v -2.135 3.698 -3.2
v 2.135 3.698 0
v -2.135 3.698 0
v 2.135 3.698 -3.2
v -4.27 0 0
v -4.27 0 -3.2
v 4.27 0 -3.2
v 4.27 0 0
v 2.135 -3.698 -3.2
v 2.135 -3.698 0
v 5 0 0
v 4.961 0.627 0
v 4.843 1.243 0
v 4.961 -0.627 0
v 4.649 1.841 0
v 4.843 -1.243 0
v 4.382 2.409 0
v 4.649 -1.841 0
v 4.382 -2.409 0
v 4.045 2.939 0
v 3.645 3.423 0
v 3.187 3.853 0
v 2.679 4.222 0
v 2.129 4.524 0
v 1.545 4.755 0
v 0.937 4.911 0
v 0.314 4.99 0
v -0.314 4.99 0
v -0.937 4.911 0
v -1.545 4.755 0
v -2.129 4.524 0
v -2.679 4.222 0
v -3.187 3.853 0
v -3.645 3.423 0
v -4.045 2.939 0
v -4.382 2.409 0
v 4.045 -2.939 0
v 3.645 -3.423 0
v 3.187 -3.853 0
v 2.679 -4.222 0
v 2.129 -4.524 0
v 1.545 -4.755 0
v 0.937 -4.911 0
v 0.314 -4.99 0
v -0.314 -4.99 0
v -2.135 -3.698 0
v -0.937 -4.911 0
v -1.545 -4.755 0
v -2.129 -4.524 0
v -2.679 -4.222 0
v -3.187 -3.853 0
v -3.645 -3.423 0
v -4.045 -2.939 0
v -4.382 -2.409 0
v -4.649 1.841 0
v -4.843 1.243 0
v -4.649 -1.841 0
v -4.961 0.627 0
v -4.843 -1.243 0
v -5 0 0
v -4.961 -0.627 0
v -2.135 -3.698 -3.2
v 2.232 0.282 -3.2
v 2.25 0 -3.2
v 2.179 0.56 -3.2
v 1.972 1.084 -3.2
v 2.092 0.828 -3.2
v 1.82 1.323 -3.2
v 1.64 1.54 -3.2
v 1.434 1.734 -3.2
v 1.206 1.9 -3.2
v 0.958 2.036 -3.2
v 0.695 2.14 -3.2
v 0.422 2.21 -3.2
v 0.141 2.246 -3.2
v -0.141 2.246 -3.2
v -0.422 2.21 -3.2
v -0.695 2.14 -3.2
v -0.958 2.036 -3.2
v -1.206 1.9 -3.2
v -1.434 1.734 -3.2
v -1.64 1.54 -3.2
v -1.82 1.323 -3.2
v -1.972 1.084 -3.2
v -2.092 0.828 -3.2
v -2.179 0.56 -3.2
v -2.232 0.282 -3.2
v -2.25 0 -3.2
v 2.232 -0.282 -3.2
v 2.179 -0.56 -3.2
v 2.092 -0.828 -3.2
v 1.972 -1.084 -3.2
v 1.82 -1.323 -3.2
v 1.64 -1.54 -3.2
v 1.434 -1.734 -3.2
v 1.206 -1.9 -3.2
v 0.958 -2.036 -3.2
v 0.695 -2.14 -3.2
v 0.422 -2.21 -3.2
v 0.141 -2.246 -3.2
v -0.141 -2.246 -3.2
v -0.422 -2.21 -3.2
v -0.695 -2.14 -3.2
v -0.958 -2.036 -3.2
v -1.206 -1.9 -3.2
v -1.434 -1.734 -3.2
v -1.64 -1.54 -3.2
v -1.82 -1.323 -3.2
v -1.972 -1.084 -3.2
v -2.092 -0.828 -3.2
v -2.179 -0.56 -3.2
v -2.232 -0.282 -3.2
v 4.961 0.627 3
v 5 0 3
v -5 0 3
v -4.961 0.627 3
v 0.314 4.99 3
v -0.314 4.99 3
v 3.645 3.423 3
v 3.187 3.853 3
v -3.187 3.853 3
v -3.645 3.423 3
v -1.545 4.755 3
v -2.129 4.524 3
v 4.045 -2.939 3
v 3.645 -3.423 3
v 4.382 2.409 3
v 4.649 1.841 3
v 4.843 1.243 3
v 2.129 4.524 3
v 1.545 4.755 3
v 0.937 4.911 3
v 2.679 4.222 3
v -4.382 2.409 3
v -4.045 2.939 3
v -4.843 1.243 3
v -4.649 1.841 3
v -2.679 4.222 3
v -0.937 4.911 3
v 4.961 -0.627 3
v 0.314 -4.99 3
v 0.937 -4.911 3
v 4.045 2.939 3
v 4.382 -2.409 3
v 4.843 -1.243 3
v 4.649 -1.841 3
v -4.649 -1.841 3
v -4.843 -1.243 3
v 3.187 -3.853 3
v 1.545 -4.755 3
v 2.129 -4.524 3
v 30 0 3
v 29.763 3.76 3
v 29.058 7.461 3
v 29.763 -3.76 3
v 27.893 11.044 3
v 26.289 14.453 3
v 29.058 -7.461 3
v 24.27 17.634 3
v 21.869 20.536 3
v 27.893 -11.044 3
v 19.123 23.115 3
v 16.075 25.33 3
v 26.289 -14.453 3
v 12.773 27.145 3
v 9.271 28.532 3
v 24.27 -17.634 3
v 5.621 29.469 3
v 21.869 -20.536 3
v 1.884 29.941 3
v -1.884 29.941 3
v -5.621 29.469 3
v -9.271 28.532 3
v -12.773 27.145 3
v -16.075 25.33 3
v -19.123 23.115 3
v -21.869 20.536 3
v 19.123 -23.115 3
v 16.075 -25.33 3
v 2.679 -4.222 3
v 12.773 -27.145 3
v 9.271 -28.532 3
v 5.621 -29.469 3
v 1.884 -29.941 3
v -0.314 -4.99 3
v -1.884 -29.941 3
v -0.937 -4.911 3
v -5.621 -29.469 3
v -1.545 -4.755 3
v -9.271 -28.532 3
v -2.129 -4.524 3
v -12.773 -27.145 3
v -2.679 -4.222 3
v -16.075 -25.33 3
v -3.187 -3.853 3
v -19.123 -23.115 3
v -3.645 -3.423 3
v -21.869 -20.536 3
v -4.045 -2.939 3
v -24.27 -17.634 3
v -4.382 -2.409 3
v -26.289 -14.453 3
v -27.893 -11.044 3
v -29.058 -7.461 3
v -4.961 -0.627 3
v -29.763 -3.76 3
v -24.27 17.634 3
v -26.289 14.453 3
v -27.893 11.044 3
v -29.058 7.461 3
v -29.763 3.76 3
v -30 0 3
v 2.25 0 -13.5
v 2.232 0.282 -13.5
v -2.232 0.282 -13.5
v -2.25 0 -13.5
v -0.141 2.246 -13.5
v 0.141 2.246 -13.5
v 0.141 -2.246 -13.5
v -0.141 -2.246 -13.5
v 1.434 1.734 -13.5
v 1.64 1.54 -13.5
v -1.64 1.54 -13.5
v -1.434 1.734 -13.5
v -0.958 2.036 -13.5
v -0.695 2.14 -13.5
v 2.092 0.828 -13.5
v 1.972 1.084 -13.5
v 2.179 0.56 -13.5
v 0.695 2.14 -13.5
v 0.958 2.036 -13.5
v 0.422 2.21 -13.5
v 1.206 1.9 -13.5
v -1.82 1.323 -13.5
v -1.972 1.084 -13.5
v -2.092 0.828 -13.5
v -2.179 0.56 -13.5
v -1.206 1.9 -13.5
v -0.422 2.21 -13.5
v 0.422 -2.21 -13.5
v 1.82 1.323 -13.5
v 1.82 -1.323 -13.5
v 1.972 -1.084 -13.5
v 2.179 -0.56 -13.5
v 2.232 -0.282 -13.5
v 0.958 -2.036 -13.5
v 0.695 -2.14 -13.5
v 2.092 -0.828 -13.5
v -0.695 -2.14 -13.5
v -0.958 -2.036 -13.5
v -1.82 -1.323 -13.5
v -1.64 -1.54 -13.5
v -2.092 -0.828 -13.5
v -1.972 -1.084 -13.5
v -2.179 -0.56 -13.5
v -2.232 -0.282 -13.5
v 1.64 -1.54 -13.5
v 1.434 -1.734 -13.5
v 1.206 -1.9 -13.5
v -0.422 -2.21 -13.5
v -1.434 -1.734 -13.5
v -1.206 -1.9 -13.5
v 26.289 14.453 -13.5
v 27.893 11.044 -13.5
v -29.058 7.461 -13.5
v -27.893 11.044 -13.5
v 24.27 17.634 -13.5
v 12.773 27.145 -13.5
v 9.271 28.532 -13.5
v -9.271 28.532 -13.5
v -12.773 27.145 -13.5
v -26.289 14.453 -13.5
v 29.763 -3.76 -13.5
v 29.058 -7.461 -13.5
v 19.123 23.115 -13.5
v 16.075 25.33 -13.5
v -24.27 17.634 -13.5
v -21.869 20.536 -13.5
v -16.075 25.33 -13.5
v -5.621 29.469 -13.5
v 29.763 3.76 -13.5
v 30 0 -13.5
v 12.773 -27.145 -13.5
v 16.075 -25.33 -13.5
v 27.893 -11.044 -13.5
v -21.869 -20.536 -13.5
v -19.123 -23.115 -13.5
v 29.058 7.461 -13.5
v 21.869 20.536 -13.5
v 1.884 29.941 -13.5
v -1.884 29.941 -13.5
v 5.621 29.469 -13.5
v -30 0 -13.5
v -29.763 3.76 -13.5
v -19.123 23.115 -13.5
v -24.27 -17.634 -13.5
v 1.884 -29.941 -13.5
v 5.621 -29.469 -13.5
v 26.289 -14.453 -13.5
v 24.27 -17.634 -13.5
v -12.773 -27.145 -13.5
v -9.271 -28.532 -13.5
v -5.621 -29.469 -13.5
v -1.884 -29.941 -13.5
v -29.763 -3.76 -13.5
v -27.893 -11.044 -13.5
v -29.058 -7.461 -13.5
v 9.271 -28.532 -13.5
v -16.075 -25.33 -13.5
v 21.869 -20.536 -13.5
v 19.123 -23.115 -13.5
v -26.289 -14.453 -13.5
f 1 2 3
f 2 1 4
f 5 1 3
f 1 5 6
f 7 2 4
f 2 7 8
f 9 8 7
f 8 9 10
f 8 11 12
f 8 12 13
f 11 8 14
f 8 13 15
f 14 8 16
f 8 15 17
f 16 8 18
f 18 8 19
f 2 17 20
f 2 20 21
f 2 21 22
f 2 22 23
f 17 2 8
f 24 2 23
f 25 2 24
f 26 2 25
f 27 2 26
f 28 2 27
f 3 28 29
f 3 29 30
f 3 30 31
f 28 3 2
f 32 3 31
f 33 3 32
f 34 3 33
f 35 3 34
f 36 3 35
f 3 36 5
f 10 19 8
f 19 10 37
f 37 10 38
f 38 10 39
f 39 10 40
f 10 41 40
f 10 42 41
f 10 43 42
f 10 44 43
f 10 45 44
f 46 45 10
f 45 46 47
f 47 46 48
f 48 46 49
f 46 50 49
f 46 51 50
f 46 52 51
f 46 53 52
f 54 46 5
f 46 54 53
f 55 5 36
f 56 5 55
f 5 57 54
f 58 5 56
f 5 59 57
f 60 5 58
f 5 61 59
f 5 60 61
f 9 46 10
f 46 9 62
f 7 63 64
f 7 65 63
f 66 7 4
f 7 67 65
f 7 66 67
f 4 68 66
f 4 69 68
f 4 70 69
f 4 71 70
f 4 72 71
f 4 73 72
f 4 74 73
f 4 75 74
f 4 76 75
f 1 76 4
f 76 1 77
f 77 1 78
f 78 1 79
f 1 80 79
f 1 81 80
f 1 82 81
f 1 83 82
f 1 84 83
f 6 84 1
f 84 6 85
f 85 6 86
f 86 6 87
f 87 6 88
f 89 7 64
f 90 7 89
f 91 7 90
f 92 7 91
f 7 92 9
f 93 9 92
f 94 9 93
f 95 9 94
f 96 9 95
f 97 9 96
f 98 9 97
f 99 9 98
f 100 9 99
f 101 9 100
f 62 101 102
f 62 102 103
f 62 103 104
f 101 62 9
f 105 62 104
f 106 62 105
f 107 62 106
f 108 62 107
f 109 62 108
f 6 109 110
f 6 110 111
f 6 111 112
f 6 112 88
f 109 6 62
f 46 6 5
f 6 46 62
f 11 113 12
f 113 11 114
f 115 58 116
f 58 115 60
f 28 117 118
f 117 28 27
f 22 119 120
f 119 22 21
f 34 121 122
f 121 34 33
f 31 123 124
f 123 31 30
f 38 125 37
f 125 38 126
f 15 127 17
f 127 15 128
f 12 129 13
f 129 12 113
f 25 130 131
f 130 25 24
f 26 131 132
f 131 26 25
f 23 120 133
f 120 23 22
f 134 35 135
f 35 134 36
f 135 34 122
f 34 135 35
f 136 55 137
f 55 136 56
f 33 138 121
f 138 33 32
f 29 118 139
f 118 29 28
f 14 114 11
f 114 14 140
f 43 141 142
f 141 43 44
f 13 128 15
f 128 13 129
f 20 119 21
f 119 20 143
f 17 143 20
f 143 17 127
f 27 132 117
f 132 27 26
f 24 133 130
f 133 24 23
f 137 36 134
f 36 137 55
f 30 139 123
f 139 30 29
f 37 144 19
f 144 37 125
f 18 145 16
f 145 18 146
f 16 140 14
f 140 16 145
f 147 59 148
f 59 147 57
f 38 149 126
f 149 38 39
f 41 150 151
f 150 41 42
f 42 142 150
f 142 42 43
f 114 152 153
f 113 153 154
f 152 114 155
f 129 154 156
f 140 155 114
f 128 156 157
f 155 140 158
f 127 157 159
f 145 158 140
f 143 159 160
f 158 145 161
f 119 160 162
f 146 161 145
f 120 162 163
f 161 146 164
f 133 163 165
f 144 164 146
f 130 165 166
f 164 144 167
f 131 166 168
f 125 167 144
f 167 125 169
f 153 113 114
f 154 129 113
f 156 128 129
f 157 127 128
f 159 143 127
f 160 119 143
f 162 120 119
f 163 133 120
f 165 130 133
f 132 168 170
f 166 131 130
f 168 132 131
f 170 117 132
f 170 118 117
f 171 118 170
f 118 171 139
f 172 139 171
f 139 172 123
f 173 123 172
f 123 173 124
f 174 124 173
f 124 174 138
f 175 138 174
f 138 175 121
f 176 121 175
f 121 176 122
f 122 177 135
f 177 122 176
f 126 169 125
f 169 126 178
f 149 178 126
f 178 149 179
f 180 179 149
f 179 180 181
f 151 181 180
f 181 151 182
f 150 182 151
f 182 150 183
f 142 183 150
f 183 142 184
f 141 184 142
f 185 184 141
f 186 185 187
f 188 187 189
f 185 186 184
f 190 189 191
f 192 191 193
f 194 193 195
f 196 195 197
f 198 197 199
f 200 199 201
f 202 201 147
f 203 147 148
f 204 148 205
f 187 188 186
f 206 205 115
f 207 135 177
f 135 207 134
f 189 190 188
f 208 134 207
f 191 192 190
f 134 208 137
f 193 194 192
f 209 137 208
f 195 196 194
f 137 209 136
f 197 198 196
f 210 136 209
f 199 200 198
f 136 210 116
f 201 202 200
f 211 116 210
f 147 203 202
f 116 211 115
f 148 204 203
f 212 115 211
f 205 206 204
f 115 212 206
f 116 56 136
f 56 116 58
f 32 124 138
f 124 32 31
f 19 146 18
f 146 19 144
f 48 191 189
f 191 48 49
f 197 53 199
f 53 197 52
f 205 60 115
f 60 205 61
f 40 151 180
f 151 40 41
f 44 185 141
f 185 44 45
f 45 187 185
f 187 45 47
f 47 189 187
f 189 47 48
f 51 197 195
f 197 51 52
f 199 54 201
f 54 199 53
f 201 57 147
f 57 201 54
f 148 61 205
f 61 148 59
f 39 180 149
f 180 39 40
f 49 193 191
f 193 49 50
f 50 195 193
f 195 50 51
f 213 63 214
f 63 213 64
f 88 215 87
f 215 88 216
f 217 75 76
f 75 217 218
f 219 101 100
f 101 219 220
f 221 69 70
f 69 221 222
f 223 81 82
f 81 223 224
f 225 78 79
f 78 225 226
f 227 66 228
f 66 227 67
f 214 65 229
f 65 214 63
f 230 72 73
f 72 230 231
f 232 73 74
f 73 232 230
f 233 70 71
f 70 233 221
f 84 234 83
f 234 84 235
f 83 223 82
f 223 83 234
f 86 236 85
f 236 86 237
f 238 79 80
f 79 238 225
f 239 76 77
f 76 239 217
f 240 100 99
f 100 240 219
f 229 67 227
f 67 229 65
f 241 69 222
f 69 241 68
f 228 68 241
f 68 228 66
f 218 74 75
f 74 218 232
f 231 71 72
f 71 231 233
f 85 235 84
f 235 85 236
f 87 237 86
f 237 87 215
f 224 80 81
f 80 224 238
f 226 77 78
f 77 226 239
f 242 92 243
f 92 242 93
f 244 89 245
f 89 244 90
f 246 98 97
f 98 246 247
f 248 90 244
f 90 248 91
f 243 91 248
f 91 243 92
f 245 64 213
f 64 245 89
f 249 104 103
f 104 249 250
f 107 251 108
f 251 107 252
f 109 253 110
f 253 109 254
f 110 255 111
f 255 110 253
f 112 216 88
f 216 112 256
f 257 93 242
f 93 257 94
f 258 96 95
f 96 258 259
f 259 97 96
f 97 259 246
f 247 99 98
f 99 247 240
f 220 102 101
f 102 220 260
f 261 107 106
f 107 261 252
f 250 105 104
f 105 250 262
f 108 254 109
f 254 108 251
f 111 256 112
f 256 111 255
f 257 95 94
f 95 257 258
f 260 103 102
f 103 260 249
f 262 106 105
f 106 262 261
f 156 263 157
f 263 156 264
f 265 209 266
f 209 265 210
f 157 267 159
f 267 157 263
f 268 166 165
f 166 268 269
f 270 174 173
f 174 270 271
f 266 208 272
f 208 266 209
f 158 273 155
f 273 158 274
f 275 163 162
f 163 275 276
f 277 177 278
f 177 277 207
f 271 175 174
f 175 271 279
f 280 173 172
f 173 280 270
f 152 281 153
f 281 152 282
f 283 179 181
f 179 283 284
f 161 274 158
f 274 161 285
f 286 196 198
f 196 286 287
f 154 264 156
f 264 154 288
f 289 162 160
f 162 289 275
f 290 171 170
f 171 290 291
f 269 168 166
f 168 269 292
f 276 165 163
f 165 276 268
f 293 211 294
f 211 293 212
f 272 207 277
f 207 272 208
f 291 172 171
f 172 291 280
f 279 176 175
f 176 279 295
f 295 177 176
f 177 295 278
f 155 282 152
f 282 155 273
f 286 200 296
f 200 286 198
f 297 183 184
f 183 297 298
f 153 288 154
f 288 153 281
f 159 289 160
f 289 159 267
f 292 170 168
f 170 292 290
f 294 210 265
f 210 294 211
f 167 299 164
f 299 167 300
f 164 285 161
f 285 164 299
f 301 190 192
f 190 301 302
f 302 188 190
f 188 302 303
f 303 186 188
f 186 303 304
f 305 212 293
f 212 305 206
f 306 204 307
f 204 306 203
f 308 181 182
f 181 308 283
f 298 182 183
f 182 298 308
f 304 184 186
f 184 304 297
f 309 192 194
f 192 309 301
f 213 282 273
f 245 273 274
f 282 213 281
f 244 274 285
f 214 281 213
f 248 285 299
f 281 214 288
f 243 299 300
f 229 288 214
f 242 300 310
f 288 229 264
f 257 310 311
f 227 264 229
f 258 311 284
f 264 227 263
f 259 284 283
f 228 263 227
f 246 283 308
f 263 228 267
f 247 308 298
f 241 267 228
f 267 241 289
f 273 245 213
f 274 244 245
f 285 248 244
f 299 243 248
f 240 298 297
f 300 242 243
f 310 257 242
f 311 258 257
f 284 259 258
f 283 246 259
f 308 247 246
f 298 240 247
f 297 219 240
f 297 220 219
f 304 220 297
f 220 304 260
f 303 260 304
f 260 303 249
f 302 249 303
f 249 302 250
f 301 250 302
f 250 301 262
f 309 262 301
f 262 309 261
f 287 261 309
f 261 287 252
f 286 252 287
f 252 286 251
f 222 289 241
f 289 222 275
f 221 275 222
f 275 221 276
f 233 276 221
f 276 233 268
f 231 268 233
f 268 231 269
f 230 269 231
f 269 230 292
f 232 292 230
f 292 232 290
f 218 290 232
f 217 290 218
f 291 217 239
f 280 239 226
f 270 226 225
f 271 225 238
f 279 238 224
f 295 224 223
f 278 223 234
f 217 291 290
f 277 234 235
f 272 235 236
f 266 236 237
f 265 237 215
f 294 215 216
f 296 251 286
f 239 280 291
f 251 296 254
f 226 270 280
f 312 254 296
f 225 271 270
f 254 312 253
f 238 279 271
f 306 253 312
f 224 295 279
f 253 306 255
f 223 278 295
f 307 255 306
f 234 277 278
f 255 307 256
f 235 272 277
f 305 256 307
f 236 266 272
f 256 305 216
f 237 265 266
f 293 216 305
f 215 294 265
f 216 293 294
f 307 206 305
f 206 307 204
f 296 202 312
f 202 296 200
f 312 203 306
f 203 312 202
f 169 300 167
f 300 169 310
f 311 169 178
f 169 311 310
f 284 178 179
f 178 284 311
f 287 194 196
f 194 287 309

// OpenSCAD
$fn = 50;

difference() {
	union() {
		translate(v = [0, 0, -13.5]) {
			cylinder(h = 16.5, r = 30.0);
		}
	}
	union() {
		translate(v = [0, 0, 0]) {
			rotate(a = [0, 0, 0]) {
				difference() {
					union() {
						translate(v = [0, 0, -3.2]) {
							linear_extrude(height = 3.2) {
								polygon(points = [[4.2698, 0.0], [2.1349000000000005, 3.697755269078796], [-2.134899999999999, 3.6977552690787965], [-4.2698, 5.228996902999369e-16], [-2.134900000000002, -3.6977552690787956], [2.1348999999999974, -3.697755269078798]]);
							}
						}
					}
					union();
				}
			}
		}
		#cylinder(h = 3, r = 5.0);
		#translate(v = [0, 0, -100.0]) {
			cylinder(h = 200, r = 2.25);
		}
	}
}
